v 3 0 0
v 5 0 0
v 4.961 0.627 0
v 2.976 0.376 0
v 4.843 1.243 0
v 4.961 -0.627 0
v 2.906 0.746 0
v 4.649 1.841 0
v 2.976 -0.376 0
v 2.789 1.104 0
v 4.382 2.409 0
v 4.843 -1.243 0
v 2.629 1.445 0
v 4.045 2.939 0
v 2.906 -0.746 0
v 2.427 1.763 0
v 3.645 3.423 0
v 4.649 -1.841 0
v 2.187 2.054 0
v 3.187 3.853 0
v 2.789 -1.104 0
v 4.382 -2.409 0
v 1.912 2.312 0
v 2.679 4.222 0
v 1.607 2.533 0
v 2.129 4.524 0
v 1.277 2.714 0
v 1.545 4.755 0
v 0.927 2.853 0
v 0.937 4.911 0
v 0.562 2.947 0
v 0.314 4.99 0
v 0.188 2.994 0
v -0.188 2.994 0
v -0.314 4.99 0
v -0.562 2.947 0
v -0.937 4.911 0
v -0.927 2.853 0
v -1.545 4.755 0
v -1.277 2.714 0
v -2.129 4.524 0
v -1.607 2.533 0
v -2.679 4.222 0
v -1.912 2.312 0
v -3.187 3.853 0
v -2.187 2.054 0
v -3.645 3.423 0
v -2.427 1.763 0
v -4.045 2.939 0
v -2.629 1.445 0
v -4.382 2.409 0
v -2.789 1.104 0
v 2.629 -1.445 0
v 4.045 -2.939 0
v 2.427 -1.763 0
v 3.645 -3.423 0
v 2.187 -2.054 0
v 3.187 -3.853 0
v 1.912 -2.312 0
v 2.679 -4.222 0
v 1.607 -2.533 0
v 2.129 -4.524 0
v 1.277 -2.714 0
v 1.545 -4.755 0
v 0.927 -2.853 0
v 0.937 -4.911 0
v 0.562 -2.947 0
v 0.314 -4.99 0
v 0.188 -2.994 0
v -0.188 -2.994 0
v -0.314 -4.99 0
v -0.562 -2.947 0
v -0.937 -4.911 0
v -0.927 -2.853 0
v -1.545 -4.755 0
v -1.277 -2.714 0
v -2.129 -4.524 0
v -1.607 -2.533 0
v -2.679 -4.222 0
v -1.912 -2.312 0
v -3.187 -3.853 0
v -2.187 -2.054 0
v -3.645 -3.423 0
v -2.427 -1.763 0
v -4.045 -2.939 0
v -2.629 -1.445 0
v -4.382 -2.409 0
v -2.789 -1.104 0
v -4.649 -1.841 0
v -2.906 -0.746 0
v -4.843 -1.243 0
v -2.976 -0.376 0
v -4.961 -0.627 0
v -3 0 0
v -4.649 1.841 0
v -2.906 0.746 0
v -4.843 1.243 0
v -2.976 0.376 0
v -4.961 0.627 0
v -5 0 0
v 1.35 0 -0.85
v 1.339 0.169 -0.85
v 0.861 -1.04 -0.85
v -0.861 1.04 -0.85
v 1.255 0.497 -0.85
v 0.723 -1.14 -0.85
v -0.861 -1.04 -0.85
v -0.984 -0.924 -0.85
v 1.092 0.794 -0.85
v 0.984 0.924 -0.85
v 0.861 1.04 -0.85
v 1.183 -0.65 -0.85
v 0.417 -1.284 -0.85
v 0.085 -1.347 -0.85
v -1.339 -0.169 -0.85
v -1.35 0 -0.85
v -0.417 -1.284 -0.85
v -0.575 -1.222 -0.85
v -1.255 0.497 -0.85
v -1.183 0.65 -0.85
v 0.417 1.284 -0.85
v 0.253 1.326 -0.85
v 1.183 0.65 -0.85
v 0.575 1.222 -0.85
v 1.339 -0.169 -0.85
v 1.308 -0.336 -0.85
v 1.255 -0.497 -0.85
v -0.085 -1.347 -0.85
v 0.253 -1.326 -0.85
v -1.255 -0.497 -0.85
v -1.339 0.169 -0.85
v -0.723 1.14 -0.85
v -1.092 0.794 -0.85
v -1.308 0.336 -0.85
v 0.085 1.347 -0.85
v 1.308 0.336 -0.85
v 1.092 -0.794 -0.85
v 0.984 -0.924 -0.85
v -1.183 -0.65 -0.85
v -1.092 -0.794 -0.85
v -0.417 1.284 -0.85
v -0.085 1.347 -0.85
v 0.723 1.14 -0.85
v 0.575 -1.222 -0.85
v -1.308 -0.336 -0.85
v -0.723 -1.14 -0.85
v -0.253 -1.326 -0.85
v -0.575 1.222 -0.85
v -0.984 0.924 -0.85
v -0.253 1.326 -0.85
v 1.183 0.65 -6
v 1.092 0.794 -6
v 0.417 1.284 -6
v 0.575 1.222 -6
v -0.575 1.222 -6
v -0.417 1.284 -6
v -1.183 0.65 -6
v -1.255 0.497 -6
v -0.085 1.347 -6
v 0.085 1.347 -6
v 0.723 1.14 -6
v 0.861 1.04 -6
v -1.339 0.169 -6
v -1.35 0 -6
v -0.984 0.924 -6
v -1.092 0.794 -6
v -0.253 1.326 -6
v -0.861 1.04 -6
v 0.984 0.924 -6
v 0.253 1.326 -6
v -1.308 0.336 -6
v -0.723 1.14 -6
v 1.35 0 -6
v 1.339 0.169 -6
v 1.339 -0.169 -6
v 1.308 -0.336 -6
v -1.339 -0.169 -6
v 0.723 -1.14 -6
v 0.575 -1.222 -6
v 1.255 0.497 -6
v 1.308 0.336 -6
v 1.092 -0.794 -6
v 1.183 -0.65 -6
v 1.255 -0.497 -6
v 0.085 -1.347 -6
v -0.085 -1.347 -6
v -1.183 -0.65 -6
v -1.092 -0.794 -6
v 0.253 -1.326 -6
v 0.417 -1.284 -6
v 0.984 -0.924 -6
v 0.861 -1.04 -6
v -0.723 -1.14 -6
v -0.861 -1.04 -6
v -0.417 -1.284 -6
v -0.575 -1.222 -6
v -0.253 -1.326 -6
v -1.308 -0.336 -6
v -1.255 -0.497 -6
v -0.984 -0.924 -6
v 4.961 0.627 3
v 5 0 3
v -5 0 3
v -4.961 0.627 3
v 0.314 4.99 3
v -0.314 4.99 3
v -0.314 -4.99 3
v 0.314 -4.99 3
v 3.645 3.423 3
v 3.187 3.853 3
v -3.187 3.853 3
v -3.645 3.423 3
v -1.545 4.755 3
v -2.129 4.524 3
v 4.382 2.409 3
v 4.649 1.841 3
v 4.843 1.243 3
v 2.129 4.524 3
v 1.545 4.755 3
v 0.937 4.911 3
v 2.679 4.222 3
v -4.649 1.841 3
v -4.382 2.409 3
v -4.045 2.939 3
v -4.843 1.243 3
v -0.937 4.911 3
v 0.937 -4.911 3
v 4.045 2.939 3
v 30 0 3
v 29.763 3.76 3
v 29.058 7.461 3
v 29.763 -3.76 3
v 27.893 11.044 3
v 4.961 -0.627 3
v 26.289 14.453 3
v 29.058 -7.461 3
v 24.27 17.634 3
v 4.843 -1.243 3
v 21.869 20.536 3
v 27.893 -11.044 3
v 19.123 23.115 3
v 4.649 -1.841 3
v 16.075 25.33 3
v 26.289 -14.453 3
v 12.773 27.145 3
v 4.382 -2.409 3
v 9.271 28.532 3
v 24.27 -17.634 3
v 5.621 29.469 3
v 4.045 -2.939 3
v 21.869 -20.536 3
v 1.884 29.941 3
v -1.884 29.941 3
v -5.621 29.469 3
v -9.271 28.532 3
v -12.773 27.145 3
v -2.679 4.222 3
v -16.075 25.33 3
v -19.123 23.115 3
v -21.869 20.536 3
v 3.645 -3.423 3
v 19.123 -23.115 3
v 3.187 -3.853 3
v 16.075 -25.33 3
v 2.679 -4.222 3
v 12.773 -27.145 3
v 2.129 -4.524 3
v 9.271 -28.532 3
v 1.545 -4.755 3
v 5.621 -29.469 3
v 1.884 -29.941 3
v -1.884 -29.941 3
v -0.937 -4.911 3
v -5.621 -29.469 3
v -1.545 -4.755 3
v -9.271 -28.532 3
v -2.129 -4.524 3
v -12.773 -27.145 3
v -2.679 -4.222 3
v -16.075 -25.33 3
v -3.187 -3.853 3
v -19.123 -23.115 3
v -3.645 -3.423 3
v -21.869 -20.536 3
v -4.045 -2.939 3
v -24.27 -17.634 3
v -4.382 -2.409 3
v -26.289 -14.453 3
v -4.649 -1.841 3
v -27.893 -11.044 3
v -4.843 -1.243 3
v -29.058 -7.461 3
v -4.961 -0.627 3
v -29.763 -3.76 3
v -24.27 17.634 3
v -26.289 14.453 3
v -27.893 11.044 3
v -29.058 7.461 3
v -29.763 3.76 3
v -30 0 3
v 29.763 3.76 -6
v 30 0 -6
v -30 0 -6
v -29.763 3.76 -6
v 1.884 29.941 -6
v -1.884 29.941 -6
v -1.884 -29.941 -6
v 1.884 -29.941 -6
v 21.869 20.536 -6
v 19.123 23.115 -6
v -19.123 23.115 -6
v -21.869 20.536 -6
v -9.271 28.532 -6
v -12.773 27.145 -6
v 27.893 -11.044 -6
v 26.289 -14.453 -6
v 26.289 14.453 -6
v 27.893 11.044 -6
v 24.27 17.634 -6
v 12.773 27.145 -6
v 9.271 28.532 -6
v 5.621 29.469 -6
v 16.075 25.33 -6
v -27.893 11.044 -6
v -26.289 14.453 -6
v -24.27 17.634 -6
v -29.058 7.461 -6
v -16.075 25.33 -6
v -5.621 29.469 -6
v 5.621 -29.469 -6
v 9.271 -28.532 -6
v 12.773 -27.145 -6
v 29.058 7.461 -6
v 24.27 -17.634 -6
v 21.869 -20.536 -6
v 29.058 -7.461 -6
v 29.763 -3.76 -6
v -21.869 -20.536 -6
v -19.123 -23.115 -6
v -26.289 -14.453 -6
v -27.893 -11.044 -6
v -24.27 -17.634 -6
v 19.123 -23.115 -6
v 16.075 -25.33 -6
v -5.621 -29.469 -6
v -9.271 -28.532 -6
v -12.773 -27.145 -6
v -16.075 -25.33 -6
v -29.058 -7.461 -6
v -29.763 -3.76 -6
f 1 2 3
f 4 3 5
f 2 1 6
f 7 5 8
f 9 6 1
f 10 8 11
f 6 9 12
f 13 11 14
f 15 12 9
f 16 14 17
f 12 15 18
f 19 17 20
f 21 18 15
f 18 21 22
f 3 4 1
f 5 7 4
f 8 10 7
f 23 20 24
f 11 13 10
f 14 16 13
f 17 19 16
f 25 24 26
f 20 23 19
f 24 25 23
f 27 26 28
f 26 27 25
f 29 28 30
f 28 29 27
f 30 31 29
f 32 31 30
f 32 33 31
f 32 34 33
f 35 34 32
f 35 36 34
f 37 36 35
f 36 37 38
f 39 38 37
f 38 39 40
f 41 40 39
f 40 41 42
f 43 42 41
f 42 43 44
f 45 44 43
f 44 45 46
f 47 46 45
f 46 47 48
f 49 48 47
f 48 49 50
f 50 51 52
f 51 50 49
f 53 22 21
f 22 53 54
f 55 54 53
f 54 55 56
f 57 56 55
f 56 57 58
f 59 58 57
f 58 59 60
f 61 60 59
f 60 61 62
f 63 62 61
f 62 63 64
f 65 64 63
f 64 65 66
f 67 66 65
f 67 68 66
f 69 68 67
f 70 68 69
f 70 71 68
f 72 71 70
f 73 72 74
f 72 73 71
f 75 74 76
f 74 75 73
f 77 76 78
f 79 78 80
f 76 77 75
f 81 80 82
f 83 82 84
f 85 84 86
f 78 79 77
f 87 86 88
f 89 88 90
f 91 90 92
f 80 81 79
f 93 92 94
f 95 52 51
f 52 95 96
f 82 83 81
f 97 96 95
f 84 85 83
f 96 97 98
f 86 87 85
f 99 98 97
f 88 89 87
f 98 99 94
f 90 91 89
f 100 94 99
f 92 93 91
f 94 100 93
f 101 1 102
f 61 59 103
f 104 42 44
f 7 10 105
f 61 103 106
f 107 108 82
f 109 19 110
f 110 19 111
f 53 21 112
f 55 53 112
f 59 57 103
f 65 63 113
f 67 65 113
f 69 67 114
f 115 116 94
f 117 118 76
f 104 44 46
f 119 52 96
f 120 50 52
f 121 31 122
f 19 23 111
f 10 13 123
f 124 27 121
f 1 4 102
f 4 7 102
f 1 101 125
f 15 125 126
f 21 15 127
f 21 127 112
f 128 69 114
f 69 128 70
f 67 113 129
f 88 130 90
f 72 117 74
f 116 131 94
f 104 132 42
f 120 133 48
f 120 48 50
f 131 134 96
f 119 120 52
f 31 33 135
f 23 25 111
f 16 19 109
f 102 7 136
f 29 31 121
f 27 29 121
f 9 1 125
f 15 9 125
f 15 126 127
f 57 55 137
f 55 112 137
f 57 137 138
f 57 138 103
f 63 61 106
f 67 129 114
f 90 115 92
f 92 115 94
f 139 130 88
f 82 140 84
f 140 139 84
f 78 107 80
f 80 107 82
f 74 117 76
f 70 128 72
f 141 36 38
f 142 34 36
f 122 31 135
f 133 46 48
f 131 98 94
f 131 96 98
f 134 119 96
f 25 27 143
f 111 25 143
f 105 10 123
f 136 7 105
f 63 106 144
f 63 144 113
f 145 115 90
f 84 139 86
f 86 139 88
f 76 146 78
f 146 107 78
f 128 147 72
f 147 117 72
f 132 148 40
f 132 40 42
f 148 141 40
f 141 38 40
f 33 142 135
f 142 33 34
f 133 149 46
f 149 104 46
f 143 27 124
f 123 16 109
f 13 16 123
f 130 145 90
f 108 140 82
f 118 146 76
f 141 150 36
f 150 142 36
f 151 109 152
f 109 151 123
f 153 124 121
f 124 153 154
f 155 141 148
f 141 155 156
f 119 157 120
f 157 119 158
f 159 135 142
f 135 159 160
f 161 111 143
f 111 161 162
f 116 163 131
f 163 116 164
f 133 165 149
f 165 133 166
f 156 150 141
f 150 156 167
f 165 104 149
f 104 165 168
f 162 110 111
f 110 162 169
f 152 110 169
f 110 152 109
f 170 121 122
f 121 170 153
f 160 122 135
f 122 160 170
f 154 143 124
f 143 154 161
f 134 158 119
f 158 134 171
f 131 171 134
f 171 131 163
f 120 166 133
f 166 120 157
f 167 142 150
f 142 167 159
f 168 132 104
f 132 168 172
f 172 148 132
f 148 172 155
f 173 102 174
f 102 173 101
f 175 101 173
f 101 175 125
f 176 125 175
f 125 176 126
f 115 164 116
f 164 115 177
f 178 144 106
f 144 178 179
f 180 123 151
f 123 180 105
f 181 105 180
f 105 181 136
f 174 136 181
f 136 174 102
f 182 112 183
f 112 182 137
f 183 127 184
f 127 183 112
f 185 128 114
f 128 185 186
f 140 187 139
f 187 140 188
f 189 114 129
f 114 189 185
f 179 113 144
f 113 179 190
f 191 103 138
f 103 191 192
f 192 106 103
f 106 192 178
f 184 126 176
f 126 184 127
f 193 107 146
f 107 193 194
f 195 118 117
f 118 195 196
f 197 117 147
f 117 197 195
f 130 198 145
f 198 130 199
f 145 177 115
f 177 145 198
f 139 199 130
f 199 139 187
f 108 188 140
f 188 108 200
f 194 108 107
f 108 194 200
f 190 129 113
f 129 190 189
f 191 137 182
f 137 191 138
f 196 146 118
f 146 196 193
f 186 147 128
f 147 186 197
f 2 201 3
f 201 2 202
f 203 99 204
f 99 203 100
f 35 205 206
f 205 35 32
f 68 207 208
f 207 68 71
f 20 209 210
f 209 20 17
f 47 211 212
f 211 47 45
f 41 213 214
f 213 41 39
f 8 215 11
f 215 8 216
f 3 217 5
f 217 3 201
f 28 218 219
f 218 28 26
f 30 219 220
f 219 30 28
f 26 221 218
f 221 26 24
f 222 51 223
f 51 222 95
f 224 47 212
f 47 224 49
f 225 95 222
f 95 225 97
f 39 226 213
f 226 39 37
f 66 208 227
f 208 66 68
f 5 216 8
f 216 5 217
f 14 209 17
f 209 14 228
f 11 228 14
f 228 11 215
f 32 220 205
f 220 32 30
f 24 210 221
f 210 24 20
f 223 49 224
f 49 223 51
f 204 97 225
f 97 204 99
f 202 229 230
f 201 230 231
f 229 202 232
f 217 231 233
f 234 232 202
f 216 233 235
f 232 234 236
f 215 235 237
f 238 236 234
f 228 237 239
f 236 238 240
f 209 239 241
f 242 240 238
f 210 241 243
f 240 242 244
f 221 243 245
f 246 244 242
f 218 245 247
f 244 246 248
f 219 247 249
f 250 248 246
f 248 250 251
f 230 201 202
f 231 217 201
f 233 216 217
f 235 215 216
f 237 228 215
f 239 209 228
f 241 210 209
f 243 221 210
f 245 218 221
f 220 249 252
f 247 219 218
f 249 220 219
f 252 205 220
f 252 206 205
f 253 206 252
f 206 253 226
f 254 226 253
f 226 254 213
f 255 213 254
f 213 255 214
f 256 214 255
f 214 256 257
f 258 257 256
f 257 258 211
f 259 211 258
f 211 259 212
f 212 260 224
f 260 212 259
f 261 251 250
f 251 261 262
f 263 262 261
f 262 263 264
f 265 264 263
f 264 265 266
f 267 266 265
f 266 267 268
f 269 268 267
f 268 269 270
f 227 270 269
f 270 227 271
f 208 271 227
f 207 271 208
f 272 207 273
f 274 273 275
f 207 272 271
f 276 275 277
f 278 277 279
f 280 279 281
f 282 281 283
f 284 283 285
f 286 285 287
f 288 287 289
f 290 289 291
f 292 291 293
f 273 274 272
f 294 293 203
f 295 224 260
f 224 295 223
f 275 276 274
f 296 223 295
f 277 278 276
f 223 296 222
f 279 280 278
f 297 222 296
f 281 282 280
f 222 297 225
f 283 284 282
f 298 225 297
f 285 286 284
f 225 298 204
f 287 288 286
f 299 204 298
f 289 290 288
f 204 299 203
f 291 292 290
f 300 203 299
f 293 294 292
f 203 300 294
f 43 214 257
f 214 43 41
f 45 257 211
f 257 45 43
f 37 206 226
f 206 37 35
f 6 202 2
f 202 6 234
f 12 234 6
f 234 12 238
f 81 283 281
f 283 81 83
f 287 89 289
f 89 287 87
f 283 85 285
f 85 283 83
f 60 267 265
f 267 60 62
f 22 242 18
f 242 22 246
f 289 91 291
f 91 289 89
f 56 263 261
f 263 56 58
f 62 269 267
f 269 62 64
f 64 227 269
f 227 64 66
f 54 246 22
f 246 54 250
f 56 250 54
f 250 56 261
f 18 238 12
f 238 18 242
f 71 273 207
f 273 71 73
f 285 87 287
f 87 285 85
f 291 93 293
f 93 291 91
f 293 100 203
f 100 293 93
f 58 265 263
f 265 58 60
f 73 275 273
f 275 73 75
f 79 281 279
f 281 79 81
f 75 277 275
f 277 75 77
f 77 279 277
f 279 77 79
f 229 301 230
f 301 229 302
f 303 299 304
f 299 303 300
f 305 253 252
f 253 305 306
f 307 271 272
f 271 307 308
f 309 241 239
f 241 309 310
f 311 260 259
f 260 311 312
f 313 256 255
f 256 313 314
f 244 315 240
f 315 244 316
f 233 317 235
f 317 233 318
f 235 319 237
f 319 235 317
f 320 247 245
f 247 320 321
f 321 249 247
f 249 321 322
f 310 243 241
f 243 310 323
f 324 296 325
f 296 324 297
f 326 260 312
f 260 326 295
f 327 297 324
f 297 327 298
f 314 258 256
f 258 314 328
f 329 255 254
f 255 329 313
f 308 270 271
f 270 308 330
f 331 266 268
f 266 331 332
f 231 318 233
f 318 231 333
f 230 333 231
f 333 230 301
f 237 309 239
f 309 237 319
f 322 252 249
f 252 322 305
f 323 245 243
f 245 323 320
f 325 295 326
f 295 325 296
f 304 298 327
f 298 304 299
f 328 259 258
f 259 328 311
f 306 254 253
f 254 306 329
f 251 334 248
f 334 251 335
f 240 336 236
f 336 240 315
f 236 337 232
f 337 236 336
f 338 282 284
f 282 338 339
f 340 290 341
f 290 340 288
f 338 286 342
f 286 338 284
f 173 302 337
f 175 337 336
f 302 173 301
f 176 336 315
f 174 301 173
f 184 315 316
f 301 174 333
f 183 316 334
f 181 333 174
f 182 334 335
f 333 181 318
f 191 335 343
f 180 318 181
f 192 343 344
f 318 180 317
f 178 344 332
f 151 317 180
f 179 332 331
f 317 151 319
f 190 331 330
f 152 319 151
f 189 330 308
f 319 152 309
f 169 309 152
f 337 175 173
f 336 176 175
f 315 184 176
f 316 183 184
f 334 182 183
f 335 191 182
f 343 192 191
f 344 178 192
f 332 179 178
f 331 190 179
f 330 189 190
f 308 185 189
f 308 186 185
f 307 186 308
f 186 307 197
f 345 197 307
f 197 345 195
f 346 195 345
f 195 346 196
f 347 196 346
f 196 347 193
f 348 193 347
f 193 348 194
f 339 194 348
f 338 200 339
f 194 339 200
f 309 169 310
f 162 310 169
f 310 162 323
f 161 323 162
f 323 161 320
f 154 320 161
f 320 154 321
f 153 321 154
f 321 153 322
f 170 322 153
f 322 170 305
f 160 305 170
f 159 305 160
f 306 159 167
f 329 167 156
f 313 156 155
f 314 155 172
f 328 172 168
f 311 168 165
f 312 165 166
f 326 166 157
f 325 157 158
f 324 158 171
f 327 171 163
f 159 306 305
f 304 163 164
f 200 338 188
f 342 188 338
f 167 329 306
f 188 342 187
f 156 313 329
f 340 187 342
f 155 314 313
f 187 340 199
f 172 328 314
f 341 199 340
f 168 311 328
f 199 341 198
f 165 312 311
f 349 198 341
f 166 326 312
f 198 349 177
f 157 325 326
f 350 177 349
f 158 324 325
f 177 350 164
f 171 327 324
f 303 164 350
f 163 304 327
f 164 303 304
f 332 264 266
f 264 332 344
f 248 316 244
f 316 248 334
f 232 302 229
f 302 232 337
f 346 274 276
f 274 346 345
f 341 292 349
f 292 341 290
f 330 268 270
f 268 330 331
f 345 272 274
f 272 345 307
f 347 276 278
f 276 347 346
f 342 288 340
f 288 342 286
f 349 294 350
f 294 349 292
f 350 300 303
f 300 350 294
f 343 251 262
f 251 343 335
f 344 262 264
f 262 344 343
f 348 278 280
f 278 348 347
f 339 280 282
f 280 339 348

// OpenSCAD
$fn = 50;

difference() {
	union() {
		translate(v = [0, 0, -6.0]) {
			cylinder(h = 9, r = 30.0);
		}
	}
	union() {
		translate(v = [0, 0, 0]) {
			rotate(a = [0, 0, 0]) {
				difference() {
					union() {
						translate(v = [0, 0, -9.0]) {
							cylinder(h = 9, r = 1.0);
						}
						translate(v = [0, 0, -0.85]) {
							cylinder(h = 0.85, r1 = 1.35, r2 = 3.0);
						}
						translate(v = [0, 0, -9.0]) {
							cylinder(h = 9, r = 1.35);
						}
						translate(v = [0, 0, -9.0]) {
							cylinder(h = 9, r = 1.0);
						}
					}
					union();
				}
			}
		}
		#cylinder(h = 3, r = 5.0);
	}
}
